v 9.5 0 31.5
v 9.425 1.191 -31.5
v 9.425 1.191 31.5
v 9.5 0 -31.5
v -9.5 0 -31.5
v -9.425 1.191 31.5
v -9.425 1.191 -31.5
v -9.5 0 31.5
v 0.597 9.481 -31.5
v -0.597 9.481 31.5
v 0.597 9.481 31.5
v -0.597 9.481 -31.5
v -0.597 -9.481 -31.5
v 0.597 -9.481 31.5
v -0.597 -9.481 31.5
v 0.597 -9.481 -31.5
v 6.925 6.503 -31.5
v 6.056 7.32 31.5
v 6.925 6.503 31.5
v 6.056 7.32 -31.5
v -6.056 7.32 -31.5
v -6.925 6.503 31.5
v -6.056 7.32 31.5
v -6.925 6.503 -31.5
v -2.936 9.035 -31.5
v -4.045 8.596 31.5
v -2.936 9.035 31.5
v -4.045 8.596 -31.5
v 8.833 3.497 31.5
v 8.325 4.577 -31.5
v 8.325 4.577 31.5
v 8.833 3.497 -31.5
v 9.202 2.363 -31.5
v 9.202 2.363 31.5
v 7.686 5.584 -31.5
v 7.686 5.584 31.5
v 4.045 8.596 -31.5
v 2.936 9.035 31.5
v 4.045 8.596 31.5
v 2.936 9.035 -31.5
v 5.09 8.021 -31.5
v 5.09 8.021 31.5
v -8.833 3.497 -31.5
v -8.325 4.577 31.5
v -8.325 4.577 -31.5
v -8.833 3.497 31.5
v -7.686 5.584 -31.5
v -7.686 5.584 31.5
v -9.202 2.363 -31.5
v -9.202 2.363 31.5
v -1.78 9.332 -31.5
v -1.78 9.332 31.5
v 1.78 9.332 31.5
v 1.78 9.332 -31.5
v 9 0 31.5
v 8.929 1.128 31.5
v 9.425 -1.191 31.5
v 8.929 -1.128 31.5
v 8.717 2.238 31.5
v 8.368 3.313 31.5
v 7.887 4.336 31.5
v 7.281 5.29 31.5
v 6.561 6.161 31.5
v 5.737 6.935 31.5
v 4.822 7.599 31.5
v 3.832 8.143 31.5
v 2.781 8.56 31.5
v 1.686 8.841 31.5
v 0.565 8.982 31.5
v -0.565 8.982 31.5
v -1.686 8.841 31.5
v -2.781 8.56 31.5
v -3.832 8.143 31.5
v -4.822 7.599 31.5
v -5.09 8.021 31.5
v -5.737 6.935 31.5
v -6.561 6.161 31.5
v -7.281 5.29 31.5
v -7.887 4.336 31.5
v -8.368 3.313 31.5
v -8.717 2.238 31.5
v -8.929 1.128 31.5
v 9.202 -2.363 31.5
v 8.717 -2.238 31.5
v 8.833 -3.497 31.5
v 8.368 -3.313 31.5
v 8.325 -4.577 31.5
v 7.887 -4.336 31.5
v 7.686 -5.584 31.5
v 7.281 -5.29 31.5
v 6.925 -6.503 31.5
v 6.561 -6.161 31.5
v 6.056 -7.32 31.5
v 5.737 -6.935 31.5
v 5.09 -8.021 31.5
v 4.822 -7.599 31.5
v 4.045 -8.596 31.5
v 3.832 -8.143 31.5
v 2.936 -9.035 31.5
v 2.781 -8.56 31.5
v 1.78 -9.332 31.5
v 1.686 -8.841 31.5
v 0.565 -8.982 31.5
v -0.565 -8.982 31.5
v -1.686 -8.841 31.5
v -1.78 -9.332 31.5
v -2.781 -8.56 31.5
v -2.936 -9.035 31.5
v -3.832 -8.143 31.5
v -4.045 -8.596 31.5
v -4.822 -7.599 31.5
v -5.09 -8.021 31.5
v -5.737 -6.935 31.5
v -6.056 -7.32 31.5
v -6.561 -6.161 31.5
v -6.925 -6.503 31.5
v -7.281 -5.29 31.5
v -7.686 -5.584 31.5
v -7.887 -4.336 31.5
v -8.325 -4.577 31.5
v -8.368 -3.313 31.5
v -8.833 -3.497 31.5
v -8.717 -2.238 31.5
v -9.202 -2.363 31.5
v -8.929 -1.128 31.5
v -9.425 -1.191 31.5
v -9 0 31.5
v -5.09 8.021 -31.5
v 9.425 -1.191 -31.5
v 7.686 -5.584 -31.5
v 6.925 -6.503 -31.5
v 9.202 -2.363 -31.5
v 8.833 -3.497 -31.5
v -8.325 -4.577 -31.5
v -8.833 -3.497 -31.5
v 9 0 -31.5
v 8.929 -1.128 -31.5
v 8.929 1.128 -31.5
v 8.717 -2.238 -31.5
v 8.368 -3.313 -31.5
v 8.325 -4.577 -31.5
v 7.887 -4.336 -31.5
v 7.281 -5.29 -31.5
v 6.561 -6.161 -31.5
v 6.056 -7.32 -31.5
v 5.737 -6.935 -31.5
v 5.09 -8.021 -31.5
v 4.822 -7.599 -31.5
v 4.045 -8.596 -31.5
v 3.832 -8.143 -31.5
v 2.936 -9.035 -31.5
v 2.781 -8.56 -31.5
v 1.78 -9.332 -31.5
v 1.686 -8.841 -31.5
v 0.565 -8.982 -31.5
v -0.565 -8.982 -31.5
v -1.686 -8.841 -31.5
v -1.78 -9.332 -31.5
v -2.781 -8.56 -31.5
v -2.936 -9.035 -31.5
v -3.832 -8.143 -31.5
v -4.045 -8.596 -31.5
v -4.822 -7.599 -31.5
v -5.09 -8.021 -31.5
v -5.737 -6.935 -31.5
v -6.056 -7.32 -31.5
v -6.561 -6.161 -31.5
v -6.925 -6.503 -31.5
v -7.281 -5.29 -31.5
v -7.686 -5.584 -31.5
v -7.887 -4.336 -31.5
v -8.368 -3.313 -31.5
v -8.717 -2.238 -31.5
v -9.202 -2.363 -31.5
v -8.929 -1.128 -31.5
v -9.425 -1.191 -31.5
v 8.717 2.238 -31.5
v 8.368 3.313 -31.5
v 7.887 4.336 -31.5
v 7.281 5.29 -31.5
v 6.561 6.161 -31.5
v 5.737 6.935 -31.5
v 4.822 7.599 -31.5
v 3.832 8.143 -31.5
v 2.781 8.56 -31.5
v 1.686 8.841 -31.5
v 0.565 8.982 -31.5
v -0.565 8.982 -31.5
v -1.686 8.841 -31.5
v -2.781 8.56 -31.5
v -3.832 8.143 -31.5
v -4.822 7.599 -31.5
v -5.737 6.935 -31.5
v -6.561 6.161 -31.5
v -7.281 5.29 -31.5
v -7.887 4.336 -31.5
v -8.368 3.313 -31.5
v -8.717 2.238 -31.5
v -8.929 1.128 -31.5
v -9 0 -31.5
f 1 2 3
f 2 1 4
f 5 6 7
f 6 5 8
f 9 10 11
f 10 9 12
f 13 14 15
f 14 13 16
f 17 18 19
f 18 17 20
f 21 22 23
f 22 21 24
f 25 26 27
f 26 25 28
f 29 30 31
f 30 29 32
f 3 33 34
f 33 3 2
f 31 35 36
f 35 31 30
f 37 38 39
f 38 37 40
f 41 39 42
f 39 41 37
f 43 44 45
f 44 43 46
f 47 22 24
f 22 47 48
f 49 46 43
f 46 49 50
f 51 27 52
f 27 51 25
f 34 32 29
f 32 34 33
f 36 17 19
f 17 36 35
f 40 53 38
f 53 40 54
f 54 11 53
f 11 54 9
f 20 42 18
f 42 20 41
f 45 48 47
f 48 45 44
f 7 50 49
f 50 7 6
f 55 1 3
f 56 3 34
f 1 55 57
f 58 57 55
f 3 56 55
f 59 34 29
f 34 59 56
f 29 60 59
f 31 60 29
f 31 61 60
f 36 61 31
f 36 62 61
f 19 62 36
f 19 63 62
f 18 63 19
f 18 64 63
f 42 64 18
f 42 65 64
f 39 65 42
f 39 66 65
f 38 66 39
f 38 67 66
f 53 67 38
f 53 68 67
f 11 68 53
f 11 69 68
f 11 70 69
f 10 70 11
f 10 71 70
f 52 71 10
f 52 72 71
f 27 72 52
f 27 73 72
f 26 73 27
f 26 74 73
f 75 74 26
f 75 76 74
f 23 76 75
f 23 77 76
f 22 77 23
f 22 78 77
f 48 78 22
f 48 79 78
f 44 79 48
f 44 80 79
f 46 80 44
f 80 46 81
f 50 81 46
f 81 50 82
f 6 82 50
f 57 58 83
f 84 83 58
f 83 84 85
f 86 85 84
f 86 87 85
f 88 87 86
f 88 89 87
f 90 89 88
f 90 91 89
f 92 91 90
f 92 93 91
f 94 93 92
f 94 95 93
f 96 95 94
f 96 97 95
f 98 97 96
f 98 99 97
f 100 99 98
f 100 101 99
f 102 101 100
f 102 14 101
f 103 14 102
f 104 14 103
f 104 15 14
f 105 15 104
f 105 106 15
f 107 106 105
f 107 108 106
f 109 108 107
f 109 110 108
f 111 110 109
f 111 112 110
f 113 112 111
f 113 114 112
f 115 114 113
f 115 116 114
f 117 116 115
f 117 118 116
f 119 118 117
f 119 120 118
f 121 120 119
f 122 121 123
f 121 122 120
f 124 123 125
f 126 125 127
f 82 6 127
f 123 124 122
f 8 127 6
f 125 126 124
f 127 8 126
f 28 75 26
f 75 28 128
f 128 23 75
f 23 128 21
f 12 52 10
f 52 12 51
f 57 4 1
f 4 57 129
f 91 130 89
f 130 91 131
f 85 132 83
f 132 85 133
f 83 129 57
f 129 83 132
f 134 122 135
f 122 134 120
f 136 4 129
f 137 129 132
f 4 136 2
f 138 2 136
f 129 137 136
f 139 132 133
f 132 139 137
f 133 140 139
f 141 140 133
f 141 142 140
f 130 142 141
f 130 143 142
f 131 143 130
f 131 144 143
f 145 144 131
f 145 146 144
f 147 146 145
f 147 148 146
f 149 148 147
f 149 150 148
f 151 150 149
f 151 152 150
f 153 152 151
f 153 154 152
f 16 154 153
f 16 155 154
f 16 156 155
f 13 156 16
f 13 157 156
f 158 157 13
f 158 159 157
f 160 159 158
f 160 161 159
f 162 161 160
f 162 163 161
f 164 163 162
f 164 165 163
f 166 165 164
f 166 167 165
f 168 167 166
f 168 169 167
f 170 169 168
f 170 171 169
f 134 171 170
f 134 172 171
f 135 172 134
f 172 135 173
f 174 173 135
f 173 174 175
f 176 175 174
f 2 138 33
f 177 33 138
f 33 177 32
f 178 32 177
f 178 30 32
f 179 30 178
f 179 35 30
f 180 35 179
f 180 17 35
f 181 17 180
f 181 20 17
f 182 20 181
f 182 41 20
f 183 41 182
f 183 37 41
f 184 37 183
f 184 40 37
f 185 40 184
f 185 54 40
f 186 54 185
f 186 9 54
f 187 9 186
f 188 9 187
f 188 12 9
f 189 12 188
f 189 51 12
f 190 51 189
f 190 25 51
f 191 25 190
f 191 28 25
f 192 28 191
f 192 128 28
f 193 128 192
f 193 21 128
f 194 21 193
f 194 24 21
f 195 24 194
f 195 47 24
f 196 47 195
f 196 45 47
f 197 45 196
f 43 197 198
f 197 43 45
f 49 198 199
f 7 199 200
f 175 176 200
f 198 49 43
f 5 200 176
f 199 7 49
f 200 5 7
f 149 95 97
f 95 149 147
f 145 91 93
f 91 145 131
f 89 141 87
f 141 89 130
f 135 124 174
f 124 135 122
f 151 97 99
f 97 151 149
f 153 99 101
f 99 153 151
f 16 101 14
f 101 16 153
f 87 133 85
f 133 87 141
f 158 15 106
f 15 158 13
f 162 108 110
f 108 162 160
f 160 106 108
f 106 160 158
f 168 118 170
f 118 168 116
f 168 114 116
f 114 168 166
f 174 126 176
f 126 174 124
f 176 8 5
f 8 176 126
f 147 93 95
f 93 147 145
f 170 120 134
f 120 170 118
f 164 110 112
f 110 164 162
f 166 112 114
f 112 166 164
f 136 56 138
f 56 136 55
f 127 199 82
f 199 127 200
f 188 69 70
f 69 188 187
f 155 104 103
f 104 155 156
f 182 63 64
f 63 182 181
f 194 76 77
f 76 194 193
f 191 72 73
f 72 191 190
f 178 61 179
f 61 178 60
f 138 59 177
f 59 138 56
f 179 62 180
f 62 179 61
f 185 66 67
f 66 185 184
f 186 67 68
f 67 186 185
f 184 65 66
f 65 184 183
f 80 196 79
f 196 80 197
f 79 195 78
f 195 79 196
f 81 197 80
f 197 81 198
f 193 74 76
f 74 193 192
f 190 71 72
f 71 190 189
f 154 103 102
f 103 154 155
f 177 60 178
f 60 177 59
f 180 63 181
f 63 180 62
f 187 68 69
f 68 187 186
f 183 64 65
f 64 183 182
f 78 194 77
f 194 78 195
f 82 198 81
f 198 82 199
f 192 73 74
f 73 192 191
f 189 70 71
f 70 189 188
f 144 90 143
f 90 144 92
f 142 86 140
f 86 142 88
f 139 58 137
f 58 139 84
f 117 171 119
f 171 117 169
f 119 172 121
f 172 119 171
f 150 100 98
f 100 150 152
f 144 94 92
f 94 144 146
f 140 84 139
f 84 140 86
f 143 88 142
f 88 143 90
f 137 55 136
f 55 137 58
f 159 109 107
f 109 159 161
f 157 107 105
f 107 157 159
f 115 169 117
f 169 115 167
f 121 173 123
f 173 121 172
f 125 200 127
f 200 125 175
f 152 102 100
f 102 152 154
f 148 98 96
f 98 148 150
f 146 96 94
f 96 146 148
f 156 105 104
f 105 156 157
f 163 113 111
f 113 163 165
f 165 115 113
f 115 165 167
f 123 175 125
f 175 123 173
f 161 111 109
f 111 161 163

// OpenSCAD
$fn = 50;


difference() {
	union() {
		translate(v = [0, 0, -31.5000000000]) {
			cylinder(h = 63, r = 9.5000000000);
		}
	}
	union() {
		translate(v = [0, 0, -100.0000000000]) {
			cylinder(h = 200, r = 9);
		}
	}
}
